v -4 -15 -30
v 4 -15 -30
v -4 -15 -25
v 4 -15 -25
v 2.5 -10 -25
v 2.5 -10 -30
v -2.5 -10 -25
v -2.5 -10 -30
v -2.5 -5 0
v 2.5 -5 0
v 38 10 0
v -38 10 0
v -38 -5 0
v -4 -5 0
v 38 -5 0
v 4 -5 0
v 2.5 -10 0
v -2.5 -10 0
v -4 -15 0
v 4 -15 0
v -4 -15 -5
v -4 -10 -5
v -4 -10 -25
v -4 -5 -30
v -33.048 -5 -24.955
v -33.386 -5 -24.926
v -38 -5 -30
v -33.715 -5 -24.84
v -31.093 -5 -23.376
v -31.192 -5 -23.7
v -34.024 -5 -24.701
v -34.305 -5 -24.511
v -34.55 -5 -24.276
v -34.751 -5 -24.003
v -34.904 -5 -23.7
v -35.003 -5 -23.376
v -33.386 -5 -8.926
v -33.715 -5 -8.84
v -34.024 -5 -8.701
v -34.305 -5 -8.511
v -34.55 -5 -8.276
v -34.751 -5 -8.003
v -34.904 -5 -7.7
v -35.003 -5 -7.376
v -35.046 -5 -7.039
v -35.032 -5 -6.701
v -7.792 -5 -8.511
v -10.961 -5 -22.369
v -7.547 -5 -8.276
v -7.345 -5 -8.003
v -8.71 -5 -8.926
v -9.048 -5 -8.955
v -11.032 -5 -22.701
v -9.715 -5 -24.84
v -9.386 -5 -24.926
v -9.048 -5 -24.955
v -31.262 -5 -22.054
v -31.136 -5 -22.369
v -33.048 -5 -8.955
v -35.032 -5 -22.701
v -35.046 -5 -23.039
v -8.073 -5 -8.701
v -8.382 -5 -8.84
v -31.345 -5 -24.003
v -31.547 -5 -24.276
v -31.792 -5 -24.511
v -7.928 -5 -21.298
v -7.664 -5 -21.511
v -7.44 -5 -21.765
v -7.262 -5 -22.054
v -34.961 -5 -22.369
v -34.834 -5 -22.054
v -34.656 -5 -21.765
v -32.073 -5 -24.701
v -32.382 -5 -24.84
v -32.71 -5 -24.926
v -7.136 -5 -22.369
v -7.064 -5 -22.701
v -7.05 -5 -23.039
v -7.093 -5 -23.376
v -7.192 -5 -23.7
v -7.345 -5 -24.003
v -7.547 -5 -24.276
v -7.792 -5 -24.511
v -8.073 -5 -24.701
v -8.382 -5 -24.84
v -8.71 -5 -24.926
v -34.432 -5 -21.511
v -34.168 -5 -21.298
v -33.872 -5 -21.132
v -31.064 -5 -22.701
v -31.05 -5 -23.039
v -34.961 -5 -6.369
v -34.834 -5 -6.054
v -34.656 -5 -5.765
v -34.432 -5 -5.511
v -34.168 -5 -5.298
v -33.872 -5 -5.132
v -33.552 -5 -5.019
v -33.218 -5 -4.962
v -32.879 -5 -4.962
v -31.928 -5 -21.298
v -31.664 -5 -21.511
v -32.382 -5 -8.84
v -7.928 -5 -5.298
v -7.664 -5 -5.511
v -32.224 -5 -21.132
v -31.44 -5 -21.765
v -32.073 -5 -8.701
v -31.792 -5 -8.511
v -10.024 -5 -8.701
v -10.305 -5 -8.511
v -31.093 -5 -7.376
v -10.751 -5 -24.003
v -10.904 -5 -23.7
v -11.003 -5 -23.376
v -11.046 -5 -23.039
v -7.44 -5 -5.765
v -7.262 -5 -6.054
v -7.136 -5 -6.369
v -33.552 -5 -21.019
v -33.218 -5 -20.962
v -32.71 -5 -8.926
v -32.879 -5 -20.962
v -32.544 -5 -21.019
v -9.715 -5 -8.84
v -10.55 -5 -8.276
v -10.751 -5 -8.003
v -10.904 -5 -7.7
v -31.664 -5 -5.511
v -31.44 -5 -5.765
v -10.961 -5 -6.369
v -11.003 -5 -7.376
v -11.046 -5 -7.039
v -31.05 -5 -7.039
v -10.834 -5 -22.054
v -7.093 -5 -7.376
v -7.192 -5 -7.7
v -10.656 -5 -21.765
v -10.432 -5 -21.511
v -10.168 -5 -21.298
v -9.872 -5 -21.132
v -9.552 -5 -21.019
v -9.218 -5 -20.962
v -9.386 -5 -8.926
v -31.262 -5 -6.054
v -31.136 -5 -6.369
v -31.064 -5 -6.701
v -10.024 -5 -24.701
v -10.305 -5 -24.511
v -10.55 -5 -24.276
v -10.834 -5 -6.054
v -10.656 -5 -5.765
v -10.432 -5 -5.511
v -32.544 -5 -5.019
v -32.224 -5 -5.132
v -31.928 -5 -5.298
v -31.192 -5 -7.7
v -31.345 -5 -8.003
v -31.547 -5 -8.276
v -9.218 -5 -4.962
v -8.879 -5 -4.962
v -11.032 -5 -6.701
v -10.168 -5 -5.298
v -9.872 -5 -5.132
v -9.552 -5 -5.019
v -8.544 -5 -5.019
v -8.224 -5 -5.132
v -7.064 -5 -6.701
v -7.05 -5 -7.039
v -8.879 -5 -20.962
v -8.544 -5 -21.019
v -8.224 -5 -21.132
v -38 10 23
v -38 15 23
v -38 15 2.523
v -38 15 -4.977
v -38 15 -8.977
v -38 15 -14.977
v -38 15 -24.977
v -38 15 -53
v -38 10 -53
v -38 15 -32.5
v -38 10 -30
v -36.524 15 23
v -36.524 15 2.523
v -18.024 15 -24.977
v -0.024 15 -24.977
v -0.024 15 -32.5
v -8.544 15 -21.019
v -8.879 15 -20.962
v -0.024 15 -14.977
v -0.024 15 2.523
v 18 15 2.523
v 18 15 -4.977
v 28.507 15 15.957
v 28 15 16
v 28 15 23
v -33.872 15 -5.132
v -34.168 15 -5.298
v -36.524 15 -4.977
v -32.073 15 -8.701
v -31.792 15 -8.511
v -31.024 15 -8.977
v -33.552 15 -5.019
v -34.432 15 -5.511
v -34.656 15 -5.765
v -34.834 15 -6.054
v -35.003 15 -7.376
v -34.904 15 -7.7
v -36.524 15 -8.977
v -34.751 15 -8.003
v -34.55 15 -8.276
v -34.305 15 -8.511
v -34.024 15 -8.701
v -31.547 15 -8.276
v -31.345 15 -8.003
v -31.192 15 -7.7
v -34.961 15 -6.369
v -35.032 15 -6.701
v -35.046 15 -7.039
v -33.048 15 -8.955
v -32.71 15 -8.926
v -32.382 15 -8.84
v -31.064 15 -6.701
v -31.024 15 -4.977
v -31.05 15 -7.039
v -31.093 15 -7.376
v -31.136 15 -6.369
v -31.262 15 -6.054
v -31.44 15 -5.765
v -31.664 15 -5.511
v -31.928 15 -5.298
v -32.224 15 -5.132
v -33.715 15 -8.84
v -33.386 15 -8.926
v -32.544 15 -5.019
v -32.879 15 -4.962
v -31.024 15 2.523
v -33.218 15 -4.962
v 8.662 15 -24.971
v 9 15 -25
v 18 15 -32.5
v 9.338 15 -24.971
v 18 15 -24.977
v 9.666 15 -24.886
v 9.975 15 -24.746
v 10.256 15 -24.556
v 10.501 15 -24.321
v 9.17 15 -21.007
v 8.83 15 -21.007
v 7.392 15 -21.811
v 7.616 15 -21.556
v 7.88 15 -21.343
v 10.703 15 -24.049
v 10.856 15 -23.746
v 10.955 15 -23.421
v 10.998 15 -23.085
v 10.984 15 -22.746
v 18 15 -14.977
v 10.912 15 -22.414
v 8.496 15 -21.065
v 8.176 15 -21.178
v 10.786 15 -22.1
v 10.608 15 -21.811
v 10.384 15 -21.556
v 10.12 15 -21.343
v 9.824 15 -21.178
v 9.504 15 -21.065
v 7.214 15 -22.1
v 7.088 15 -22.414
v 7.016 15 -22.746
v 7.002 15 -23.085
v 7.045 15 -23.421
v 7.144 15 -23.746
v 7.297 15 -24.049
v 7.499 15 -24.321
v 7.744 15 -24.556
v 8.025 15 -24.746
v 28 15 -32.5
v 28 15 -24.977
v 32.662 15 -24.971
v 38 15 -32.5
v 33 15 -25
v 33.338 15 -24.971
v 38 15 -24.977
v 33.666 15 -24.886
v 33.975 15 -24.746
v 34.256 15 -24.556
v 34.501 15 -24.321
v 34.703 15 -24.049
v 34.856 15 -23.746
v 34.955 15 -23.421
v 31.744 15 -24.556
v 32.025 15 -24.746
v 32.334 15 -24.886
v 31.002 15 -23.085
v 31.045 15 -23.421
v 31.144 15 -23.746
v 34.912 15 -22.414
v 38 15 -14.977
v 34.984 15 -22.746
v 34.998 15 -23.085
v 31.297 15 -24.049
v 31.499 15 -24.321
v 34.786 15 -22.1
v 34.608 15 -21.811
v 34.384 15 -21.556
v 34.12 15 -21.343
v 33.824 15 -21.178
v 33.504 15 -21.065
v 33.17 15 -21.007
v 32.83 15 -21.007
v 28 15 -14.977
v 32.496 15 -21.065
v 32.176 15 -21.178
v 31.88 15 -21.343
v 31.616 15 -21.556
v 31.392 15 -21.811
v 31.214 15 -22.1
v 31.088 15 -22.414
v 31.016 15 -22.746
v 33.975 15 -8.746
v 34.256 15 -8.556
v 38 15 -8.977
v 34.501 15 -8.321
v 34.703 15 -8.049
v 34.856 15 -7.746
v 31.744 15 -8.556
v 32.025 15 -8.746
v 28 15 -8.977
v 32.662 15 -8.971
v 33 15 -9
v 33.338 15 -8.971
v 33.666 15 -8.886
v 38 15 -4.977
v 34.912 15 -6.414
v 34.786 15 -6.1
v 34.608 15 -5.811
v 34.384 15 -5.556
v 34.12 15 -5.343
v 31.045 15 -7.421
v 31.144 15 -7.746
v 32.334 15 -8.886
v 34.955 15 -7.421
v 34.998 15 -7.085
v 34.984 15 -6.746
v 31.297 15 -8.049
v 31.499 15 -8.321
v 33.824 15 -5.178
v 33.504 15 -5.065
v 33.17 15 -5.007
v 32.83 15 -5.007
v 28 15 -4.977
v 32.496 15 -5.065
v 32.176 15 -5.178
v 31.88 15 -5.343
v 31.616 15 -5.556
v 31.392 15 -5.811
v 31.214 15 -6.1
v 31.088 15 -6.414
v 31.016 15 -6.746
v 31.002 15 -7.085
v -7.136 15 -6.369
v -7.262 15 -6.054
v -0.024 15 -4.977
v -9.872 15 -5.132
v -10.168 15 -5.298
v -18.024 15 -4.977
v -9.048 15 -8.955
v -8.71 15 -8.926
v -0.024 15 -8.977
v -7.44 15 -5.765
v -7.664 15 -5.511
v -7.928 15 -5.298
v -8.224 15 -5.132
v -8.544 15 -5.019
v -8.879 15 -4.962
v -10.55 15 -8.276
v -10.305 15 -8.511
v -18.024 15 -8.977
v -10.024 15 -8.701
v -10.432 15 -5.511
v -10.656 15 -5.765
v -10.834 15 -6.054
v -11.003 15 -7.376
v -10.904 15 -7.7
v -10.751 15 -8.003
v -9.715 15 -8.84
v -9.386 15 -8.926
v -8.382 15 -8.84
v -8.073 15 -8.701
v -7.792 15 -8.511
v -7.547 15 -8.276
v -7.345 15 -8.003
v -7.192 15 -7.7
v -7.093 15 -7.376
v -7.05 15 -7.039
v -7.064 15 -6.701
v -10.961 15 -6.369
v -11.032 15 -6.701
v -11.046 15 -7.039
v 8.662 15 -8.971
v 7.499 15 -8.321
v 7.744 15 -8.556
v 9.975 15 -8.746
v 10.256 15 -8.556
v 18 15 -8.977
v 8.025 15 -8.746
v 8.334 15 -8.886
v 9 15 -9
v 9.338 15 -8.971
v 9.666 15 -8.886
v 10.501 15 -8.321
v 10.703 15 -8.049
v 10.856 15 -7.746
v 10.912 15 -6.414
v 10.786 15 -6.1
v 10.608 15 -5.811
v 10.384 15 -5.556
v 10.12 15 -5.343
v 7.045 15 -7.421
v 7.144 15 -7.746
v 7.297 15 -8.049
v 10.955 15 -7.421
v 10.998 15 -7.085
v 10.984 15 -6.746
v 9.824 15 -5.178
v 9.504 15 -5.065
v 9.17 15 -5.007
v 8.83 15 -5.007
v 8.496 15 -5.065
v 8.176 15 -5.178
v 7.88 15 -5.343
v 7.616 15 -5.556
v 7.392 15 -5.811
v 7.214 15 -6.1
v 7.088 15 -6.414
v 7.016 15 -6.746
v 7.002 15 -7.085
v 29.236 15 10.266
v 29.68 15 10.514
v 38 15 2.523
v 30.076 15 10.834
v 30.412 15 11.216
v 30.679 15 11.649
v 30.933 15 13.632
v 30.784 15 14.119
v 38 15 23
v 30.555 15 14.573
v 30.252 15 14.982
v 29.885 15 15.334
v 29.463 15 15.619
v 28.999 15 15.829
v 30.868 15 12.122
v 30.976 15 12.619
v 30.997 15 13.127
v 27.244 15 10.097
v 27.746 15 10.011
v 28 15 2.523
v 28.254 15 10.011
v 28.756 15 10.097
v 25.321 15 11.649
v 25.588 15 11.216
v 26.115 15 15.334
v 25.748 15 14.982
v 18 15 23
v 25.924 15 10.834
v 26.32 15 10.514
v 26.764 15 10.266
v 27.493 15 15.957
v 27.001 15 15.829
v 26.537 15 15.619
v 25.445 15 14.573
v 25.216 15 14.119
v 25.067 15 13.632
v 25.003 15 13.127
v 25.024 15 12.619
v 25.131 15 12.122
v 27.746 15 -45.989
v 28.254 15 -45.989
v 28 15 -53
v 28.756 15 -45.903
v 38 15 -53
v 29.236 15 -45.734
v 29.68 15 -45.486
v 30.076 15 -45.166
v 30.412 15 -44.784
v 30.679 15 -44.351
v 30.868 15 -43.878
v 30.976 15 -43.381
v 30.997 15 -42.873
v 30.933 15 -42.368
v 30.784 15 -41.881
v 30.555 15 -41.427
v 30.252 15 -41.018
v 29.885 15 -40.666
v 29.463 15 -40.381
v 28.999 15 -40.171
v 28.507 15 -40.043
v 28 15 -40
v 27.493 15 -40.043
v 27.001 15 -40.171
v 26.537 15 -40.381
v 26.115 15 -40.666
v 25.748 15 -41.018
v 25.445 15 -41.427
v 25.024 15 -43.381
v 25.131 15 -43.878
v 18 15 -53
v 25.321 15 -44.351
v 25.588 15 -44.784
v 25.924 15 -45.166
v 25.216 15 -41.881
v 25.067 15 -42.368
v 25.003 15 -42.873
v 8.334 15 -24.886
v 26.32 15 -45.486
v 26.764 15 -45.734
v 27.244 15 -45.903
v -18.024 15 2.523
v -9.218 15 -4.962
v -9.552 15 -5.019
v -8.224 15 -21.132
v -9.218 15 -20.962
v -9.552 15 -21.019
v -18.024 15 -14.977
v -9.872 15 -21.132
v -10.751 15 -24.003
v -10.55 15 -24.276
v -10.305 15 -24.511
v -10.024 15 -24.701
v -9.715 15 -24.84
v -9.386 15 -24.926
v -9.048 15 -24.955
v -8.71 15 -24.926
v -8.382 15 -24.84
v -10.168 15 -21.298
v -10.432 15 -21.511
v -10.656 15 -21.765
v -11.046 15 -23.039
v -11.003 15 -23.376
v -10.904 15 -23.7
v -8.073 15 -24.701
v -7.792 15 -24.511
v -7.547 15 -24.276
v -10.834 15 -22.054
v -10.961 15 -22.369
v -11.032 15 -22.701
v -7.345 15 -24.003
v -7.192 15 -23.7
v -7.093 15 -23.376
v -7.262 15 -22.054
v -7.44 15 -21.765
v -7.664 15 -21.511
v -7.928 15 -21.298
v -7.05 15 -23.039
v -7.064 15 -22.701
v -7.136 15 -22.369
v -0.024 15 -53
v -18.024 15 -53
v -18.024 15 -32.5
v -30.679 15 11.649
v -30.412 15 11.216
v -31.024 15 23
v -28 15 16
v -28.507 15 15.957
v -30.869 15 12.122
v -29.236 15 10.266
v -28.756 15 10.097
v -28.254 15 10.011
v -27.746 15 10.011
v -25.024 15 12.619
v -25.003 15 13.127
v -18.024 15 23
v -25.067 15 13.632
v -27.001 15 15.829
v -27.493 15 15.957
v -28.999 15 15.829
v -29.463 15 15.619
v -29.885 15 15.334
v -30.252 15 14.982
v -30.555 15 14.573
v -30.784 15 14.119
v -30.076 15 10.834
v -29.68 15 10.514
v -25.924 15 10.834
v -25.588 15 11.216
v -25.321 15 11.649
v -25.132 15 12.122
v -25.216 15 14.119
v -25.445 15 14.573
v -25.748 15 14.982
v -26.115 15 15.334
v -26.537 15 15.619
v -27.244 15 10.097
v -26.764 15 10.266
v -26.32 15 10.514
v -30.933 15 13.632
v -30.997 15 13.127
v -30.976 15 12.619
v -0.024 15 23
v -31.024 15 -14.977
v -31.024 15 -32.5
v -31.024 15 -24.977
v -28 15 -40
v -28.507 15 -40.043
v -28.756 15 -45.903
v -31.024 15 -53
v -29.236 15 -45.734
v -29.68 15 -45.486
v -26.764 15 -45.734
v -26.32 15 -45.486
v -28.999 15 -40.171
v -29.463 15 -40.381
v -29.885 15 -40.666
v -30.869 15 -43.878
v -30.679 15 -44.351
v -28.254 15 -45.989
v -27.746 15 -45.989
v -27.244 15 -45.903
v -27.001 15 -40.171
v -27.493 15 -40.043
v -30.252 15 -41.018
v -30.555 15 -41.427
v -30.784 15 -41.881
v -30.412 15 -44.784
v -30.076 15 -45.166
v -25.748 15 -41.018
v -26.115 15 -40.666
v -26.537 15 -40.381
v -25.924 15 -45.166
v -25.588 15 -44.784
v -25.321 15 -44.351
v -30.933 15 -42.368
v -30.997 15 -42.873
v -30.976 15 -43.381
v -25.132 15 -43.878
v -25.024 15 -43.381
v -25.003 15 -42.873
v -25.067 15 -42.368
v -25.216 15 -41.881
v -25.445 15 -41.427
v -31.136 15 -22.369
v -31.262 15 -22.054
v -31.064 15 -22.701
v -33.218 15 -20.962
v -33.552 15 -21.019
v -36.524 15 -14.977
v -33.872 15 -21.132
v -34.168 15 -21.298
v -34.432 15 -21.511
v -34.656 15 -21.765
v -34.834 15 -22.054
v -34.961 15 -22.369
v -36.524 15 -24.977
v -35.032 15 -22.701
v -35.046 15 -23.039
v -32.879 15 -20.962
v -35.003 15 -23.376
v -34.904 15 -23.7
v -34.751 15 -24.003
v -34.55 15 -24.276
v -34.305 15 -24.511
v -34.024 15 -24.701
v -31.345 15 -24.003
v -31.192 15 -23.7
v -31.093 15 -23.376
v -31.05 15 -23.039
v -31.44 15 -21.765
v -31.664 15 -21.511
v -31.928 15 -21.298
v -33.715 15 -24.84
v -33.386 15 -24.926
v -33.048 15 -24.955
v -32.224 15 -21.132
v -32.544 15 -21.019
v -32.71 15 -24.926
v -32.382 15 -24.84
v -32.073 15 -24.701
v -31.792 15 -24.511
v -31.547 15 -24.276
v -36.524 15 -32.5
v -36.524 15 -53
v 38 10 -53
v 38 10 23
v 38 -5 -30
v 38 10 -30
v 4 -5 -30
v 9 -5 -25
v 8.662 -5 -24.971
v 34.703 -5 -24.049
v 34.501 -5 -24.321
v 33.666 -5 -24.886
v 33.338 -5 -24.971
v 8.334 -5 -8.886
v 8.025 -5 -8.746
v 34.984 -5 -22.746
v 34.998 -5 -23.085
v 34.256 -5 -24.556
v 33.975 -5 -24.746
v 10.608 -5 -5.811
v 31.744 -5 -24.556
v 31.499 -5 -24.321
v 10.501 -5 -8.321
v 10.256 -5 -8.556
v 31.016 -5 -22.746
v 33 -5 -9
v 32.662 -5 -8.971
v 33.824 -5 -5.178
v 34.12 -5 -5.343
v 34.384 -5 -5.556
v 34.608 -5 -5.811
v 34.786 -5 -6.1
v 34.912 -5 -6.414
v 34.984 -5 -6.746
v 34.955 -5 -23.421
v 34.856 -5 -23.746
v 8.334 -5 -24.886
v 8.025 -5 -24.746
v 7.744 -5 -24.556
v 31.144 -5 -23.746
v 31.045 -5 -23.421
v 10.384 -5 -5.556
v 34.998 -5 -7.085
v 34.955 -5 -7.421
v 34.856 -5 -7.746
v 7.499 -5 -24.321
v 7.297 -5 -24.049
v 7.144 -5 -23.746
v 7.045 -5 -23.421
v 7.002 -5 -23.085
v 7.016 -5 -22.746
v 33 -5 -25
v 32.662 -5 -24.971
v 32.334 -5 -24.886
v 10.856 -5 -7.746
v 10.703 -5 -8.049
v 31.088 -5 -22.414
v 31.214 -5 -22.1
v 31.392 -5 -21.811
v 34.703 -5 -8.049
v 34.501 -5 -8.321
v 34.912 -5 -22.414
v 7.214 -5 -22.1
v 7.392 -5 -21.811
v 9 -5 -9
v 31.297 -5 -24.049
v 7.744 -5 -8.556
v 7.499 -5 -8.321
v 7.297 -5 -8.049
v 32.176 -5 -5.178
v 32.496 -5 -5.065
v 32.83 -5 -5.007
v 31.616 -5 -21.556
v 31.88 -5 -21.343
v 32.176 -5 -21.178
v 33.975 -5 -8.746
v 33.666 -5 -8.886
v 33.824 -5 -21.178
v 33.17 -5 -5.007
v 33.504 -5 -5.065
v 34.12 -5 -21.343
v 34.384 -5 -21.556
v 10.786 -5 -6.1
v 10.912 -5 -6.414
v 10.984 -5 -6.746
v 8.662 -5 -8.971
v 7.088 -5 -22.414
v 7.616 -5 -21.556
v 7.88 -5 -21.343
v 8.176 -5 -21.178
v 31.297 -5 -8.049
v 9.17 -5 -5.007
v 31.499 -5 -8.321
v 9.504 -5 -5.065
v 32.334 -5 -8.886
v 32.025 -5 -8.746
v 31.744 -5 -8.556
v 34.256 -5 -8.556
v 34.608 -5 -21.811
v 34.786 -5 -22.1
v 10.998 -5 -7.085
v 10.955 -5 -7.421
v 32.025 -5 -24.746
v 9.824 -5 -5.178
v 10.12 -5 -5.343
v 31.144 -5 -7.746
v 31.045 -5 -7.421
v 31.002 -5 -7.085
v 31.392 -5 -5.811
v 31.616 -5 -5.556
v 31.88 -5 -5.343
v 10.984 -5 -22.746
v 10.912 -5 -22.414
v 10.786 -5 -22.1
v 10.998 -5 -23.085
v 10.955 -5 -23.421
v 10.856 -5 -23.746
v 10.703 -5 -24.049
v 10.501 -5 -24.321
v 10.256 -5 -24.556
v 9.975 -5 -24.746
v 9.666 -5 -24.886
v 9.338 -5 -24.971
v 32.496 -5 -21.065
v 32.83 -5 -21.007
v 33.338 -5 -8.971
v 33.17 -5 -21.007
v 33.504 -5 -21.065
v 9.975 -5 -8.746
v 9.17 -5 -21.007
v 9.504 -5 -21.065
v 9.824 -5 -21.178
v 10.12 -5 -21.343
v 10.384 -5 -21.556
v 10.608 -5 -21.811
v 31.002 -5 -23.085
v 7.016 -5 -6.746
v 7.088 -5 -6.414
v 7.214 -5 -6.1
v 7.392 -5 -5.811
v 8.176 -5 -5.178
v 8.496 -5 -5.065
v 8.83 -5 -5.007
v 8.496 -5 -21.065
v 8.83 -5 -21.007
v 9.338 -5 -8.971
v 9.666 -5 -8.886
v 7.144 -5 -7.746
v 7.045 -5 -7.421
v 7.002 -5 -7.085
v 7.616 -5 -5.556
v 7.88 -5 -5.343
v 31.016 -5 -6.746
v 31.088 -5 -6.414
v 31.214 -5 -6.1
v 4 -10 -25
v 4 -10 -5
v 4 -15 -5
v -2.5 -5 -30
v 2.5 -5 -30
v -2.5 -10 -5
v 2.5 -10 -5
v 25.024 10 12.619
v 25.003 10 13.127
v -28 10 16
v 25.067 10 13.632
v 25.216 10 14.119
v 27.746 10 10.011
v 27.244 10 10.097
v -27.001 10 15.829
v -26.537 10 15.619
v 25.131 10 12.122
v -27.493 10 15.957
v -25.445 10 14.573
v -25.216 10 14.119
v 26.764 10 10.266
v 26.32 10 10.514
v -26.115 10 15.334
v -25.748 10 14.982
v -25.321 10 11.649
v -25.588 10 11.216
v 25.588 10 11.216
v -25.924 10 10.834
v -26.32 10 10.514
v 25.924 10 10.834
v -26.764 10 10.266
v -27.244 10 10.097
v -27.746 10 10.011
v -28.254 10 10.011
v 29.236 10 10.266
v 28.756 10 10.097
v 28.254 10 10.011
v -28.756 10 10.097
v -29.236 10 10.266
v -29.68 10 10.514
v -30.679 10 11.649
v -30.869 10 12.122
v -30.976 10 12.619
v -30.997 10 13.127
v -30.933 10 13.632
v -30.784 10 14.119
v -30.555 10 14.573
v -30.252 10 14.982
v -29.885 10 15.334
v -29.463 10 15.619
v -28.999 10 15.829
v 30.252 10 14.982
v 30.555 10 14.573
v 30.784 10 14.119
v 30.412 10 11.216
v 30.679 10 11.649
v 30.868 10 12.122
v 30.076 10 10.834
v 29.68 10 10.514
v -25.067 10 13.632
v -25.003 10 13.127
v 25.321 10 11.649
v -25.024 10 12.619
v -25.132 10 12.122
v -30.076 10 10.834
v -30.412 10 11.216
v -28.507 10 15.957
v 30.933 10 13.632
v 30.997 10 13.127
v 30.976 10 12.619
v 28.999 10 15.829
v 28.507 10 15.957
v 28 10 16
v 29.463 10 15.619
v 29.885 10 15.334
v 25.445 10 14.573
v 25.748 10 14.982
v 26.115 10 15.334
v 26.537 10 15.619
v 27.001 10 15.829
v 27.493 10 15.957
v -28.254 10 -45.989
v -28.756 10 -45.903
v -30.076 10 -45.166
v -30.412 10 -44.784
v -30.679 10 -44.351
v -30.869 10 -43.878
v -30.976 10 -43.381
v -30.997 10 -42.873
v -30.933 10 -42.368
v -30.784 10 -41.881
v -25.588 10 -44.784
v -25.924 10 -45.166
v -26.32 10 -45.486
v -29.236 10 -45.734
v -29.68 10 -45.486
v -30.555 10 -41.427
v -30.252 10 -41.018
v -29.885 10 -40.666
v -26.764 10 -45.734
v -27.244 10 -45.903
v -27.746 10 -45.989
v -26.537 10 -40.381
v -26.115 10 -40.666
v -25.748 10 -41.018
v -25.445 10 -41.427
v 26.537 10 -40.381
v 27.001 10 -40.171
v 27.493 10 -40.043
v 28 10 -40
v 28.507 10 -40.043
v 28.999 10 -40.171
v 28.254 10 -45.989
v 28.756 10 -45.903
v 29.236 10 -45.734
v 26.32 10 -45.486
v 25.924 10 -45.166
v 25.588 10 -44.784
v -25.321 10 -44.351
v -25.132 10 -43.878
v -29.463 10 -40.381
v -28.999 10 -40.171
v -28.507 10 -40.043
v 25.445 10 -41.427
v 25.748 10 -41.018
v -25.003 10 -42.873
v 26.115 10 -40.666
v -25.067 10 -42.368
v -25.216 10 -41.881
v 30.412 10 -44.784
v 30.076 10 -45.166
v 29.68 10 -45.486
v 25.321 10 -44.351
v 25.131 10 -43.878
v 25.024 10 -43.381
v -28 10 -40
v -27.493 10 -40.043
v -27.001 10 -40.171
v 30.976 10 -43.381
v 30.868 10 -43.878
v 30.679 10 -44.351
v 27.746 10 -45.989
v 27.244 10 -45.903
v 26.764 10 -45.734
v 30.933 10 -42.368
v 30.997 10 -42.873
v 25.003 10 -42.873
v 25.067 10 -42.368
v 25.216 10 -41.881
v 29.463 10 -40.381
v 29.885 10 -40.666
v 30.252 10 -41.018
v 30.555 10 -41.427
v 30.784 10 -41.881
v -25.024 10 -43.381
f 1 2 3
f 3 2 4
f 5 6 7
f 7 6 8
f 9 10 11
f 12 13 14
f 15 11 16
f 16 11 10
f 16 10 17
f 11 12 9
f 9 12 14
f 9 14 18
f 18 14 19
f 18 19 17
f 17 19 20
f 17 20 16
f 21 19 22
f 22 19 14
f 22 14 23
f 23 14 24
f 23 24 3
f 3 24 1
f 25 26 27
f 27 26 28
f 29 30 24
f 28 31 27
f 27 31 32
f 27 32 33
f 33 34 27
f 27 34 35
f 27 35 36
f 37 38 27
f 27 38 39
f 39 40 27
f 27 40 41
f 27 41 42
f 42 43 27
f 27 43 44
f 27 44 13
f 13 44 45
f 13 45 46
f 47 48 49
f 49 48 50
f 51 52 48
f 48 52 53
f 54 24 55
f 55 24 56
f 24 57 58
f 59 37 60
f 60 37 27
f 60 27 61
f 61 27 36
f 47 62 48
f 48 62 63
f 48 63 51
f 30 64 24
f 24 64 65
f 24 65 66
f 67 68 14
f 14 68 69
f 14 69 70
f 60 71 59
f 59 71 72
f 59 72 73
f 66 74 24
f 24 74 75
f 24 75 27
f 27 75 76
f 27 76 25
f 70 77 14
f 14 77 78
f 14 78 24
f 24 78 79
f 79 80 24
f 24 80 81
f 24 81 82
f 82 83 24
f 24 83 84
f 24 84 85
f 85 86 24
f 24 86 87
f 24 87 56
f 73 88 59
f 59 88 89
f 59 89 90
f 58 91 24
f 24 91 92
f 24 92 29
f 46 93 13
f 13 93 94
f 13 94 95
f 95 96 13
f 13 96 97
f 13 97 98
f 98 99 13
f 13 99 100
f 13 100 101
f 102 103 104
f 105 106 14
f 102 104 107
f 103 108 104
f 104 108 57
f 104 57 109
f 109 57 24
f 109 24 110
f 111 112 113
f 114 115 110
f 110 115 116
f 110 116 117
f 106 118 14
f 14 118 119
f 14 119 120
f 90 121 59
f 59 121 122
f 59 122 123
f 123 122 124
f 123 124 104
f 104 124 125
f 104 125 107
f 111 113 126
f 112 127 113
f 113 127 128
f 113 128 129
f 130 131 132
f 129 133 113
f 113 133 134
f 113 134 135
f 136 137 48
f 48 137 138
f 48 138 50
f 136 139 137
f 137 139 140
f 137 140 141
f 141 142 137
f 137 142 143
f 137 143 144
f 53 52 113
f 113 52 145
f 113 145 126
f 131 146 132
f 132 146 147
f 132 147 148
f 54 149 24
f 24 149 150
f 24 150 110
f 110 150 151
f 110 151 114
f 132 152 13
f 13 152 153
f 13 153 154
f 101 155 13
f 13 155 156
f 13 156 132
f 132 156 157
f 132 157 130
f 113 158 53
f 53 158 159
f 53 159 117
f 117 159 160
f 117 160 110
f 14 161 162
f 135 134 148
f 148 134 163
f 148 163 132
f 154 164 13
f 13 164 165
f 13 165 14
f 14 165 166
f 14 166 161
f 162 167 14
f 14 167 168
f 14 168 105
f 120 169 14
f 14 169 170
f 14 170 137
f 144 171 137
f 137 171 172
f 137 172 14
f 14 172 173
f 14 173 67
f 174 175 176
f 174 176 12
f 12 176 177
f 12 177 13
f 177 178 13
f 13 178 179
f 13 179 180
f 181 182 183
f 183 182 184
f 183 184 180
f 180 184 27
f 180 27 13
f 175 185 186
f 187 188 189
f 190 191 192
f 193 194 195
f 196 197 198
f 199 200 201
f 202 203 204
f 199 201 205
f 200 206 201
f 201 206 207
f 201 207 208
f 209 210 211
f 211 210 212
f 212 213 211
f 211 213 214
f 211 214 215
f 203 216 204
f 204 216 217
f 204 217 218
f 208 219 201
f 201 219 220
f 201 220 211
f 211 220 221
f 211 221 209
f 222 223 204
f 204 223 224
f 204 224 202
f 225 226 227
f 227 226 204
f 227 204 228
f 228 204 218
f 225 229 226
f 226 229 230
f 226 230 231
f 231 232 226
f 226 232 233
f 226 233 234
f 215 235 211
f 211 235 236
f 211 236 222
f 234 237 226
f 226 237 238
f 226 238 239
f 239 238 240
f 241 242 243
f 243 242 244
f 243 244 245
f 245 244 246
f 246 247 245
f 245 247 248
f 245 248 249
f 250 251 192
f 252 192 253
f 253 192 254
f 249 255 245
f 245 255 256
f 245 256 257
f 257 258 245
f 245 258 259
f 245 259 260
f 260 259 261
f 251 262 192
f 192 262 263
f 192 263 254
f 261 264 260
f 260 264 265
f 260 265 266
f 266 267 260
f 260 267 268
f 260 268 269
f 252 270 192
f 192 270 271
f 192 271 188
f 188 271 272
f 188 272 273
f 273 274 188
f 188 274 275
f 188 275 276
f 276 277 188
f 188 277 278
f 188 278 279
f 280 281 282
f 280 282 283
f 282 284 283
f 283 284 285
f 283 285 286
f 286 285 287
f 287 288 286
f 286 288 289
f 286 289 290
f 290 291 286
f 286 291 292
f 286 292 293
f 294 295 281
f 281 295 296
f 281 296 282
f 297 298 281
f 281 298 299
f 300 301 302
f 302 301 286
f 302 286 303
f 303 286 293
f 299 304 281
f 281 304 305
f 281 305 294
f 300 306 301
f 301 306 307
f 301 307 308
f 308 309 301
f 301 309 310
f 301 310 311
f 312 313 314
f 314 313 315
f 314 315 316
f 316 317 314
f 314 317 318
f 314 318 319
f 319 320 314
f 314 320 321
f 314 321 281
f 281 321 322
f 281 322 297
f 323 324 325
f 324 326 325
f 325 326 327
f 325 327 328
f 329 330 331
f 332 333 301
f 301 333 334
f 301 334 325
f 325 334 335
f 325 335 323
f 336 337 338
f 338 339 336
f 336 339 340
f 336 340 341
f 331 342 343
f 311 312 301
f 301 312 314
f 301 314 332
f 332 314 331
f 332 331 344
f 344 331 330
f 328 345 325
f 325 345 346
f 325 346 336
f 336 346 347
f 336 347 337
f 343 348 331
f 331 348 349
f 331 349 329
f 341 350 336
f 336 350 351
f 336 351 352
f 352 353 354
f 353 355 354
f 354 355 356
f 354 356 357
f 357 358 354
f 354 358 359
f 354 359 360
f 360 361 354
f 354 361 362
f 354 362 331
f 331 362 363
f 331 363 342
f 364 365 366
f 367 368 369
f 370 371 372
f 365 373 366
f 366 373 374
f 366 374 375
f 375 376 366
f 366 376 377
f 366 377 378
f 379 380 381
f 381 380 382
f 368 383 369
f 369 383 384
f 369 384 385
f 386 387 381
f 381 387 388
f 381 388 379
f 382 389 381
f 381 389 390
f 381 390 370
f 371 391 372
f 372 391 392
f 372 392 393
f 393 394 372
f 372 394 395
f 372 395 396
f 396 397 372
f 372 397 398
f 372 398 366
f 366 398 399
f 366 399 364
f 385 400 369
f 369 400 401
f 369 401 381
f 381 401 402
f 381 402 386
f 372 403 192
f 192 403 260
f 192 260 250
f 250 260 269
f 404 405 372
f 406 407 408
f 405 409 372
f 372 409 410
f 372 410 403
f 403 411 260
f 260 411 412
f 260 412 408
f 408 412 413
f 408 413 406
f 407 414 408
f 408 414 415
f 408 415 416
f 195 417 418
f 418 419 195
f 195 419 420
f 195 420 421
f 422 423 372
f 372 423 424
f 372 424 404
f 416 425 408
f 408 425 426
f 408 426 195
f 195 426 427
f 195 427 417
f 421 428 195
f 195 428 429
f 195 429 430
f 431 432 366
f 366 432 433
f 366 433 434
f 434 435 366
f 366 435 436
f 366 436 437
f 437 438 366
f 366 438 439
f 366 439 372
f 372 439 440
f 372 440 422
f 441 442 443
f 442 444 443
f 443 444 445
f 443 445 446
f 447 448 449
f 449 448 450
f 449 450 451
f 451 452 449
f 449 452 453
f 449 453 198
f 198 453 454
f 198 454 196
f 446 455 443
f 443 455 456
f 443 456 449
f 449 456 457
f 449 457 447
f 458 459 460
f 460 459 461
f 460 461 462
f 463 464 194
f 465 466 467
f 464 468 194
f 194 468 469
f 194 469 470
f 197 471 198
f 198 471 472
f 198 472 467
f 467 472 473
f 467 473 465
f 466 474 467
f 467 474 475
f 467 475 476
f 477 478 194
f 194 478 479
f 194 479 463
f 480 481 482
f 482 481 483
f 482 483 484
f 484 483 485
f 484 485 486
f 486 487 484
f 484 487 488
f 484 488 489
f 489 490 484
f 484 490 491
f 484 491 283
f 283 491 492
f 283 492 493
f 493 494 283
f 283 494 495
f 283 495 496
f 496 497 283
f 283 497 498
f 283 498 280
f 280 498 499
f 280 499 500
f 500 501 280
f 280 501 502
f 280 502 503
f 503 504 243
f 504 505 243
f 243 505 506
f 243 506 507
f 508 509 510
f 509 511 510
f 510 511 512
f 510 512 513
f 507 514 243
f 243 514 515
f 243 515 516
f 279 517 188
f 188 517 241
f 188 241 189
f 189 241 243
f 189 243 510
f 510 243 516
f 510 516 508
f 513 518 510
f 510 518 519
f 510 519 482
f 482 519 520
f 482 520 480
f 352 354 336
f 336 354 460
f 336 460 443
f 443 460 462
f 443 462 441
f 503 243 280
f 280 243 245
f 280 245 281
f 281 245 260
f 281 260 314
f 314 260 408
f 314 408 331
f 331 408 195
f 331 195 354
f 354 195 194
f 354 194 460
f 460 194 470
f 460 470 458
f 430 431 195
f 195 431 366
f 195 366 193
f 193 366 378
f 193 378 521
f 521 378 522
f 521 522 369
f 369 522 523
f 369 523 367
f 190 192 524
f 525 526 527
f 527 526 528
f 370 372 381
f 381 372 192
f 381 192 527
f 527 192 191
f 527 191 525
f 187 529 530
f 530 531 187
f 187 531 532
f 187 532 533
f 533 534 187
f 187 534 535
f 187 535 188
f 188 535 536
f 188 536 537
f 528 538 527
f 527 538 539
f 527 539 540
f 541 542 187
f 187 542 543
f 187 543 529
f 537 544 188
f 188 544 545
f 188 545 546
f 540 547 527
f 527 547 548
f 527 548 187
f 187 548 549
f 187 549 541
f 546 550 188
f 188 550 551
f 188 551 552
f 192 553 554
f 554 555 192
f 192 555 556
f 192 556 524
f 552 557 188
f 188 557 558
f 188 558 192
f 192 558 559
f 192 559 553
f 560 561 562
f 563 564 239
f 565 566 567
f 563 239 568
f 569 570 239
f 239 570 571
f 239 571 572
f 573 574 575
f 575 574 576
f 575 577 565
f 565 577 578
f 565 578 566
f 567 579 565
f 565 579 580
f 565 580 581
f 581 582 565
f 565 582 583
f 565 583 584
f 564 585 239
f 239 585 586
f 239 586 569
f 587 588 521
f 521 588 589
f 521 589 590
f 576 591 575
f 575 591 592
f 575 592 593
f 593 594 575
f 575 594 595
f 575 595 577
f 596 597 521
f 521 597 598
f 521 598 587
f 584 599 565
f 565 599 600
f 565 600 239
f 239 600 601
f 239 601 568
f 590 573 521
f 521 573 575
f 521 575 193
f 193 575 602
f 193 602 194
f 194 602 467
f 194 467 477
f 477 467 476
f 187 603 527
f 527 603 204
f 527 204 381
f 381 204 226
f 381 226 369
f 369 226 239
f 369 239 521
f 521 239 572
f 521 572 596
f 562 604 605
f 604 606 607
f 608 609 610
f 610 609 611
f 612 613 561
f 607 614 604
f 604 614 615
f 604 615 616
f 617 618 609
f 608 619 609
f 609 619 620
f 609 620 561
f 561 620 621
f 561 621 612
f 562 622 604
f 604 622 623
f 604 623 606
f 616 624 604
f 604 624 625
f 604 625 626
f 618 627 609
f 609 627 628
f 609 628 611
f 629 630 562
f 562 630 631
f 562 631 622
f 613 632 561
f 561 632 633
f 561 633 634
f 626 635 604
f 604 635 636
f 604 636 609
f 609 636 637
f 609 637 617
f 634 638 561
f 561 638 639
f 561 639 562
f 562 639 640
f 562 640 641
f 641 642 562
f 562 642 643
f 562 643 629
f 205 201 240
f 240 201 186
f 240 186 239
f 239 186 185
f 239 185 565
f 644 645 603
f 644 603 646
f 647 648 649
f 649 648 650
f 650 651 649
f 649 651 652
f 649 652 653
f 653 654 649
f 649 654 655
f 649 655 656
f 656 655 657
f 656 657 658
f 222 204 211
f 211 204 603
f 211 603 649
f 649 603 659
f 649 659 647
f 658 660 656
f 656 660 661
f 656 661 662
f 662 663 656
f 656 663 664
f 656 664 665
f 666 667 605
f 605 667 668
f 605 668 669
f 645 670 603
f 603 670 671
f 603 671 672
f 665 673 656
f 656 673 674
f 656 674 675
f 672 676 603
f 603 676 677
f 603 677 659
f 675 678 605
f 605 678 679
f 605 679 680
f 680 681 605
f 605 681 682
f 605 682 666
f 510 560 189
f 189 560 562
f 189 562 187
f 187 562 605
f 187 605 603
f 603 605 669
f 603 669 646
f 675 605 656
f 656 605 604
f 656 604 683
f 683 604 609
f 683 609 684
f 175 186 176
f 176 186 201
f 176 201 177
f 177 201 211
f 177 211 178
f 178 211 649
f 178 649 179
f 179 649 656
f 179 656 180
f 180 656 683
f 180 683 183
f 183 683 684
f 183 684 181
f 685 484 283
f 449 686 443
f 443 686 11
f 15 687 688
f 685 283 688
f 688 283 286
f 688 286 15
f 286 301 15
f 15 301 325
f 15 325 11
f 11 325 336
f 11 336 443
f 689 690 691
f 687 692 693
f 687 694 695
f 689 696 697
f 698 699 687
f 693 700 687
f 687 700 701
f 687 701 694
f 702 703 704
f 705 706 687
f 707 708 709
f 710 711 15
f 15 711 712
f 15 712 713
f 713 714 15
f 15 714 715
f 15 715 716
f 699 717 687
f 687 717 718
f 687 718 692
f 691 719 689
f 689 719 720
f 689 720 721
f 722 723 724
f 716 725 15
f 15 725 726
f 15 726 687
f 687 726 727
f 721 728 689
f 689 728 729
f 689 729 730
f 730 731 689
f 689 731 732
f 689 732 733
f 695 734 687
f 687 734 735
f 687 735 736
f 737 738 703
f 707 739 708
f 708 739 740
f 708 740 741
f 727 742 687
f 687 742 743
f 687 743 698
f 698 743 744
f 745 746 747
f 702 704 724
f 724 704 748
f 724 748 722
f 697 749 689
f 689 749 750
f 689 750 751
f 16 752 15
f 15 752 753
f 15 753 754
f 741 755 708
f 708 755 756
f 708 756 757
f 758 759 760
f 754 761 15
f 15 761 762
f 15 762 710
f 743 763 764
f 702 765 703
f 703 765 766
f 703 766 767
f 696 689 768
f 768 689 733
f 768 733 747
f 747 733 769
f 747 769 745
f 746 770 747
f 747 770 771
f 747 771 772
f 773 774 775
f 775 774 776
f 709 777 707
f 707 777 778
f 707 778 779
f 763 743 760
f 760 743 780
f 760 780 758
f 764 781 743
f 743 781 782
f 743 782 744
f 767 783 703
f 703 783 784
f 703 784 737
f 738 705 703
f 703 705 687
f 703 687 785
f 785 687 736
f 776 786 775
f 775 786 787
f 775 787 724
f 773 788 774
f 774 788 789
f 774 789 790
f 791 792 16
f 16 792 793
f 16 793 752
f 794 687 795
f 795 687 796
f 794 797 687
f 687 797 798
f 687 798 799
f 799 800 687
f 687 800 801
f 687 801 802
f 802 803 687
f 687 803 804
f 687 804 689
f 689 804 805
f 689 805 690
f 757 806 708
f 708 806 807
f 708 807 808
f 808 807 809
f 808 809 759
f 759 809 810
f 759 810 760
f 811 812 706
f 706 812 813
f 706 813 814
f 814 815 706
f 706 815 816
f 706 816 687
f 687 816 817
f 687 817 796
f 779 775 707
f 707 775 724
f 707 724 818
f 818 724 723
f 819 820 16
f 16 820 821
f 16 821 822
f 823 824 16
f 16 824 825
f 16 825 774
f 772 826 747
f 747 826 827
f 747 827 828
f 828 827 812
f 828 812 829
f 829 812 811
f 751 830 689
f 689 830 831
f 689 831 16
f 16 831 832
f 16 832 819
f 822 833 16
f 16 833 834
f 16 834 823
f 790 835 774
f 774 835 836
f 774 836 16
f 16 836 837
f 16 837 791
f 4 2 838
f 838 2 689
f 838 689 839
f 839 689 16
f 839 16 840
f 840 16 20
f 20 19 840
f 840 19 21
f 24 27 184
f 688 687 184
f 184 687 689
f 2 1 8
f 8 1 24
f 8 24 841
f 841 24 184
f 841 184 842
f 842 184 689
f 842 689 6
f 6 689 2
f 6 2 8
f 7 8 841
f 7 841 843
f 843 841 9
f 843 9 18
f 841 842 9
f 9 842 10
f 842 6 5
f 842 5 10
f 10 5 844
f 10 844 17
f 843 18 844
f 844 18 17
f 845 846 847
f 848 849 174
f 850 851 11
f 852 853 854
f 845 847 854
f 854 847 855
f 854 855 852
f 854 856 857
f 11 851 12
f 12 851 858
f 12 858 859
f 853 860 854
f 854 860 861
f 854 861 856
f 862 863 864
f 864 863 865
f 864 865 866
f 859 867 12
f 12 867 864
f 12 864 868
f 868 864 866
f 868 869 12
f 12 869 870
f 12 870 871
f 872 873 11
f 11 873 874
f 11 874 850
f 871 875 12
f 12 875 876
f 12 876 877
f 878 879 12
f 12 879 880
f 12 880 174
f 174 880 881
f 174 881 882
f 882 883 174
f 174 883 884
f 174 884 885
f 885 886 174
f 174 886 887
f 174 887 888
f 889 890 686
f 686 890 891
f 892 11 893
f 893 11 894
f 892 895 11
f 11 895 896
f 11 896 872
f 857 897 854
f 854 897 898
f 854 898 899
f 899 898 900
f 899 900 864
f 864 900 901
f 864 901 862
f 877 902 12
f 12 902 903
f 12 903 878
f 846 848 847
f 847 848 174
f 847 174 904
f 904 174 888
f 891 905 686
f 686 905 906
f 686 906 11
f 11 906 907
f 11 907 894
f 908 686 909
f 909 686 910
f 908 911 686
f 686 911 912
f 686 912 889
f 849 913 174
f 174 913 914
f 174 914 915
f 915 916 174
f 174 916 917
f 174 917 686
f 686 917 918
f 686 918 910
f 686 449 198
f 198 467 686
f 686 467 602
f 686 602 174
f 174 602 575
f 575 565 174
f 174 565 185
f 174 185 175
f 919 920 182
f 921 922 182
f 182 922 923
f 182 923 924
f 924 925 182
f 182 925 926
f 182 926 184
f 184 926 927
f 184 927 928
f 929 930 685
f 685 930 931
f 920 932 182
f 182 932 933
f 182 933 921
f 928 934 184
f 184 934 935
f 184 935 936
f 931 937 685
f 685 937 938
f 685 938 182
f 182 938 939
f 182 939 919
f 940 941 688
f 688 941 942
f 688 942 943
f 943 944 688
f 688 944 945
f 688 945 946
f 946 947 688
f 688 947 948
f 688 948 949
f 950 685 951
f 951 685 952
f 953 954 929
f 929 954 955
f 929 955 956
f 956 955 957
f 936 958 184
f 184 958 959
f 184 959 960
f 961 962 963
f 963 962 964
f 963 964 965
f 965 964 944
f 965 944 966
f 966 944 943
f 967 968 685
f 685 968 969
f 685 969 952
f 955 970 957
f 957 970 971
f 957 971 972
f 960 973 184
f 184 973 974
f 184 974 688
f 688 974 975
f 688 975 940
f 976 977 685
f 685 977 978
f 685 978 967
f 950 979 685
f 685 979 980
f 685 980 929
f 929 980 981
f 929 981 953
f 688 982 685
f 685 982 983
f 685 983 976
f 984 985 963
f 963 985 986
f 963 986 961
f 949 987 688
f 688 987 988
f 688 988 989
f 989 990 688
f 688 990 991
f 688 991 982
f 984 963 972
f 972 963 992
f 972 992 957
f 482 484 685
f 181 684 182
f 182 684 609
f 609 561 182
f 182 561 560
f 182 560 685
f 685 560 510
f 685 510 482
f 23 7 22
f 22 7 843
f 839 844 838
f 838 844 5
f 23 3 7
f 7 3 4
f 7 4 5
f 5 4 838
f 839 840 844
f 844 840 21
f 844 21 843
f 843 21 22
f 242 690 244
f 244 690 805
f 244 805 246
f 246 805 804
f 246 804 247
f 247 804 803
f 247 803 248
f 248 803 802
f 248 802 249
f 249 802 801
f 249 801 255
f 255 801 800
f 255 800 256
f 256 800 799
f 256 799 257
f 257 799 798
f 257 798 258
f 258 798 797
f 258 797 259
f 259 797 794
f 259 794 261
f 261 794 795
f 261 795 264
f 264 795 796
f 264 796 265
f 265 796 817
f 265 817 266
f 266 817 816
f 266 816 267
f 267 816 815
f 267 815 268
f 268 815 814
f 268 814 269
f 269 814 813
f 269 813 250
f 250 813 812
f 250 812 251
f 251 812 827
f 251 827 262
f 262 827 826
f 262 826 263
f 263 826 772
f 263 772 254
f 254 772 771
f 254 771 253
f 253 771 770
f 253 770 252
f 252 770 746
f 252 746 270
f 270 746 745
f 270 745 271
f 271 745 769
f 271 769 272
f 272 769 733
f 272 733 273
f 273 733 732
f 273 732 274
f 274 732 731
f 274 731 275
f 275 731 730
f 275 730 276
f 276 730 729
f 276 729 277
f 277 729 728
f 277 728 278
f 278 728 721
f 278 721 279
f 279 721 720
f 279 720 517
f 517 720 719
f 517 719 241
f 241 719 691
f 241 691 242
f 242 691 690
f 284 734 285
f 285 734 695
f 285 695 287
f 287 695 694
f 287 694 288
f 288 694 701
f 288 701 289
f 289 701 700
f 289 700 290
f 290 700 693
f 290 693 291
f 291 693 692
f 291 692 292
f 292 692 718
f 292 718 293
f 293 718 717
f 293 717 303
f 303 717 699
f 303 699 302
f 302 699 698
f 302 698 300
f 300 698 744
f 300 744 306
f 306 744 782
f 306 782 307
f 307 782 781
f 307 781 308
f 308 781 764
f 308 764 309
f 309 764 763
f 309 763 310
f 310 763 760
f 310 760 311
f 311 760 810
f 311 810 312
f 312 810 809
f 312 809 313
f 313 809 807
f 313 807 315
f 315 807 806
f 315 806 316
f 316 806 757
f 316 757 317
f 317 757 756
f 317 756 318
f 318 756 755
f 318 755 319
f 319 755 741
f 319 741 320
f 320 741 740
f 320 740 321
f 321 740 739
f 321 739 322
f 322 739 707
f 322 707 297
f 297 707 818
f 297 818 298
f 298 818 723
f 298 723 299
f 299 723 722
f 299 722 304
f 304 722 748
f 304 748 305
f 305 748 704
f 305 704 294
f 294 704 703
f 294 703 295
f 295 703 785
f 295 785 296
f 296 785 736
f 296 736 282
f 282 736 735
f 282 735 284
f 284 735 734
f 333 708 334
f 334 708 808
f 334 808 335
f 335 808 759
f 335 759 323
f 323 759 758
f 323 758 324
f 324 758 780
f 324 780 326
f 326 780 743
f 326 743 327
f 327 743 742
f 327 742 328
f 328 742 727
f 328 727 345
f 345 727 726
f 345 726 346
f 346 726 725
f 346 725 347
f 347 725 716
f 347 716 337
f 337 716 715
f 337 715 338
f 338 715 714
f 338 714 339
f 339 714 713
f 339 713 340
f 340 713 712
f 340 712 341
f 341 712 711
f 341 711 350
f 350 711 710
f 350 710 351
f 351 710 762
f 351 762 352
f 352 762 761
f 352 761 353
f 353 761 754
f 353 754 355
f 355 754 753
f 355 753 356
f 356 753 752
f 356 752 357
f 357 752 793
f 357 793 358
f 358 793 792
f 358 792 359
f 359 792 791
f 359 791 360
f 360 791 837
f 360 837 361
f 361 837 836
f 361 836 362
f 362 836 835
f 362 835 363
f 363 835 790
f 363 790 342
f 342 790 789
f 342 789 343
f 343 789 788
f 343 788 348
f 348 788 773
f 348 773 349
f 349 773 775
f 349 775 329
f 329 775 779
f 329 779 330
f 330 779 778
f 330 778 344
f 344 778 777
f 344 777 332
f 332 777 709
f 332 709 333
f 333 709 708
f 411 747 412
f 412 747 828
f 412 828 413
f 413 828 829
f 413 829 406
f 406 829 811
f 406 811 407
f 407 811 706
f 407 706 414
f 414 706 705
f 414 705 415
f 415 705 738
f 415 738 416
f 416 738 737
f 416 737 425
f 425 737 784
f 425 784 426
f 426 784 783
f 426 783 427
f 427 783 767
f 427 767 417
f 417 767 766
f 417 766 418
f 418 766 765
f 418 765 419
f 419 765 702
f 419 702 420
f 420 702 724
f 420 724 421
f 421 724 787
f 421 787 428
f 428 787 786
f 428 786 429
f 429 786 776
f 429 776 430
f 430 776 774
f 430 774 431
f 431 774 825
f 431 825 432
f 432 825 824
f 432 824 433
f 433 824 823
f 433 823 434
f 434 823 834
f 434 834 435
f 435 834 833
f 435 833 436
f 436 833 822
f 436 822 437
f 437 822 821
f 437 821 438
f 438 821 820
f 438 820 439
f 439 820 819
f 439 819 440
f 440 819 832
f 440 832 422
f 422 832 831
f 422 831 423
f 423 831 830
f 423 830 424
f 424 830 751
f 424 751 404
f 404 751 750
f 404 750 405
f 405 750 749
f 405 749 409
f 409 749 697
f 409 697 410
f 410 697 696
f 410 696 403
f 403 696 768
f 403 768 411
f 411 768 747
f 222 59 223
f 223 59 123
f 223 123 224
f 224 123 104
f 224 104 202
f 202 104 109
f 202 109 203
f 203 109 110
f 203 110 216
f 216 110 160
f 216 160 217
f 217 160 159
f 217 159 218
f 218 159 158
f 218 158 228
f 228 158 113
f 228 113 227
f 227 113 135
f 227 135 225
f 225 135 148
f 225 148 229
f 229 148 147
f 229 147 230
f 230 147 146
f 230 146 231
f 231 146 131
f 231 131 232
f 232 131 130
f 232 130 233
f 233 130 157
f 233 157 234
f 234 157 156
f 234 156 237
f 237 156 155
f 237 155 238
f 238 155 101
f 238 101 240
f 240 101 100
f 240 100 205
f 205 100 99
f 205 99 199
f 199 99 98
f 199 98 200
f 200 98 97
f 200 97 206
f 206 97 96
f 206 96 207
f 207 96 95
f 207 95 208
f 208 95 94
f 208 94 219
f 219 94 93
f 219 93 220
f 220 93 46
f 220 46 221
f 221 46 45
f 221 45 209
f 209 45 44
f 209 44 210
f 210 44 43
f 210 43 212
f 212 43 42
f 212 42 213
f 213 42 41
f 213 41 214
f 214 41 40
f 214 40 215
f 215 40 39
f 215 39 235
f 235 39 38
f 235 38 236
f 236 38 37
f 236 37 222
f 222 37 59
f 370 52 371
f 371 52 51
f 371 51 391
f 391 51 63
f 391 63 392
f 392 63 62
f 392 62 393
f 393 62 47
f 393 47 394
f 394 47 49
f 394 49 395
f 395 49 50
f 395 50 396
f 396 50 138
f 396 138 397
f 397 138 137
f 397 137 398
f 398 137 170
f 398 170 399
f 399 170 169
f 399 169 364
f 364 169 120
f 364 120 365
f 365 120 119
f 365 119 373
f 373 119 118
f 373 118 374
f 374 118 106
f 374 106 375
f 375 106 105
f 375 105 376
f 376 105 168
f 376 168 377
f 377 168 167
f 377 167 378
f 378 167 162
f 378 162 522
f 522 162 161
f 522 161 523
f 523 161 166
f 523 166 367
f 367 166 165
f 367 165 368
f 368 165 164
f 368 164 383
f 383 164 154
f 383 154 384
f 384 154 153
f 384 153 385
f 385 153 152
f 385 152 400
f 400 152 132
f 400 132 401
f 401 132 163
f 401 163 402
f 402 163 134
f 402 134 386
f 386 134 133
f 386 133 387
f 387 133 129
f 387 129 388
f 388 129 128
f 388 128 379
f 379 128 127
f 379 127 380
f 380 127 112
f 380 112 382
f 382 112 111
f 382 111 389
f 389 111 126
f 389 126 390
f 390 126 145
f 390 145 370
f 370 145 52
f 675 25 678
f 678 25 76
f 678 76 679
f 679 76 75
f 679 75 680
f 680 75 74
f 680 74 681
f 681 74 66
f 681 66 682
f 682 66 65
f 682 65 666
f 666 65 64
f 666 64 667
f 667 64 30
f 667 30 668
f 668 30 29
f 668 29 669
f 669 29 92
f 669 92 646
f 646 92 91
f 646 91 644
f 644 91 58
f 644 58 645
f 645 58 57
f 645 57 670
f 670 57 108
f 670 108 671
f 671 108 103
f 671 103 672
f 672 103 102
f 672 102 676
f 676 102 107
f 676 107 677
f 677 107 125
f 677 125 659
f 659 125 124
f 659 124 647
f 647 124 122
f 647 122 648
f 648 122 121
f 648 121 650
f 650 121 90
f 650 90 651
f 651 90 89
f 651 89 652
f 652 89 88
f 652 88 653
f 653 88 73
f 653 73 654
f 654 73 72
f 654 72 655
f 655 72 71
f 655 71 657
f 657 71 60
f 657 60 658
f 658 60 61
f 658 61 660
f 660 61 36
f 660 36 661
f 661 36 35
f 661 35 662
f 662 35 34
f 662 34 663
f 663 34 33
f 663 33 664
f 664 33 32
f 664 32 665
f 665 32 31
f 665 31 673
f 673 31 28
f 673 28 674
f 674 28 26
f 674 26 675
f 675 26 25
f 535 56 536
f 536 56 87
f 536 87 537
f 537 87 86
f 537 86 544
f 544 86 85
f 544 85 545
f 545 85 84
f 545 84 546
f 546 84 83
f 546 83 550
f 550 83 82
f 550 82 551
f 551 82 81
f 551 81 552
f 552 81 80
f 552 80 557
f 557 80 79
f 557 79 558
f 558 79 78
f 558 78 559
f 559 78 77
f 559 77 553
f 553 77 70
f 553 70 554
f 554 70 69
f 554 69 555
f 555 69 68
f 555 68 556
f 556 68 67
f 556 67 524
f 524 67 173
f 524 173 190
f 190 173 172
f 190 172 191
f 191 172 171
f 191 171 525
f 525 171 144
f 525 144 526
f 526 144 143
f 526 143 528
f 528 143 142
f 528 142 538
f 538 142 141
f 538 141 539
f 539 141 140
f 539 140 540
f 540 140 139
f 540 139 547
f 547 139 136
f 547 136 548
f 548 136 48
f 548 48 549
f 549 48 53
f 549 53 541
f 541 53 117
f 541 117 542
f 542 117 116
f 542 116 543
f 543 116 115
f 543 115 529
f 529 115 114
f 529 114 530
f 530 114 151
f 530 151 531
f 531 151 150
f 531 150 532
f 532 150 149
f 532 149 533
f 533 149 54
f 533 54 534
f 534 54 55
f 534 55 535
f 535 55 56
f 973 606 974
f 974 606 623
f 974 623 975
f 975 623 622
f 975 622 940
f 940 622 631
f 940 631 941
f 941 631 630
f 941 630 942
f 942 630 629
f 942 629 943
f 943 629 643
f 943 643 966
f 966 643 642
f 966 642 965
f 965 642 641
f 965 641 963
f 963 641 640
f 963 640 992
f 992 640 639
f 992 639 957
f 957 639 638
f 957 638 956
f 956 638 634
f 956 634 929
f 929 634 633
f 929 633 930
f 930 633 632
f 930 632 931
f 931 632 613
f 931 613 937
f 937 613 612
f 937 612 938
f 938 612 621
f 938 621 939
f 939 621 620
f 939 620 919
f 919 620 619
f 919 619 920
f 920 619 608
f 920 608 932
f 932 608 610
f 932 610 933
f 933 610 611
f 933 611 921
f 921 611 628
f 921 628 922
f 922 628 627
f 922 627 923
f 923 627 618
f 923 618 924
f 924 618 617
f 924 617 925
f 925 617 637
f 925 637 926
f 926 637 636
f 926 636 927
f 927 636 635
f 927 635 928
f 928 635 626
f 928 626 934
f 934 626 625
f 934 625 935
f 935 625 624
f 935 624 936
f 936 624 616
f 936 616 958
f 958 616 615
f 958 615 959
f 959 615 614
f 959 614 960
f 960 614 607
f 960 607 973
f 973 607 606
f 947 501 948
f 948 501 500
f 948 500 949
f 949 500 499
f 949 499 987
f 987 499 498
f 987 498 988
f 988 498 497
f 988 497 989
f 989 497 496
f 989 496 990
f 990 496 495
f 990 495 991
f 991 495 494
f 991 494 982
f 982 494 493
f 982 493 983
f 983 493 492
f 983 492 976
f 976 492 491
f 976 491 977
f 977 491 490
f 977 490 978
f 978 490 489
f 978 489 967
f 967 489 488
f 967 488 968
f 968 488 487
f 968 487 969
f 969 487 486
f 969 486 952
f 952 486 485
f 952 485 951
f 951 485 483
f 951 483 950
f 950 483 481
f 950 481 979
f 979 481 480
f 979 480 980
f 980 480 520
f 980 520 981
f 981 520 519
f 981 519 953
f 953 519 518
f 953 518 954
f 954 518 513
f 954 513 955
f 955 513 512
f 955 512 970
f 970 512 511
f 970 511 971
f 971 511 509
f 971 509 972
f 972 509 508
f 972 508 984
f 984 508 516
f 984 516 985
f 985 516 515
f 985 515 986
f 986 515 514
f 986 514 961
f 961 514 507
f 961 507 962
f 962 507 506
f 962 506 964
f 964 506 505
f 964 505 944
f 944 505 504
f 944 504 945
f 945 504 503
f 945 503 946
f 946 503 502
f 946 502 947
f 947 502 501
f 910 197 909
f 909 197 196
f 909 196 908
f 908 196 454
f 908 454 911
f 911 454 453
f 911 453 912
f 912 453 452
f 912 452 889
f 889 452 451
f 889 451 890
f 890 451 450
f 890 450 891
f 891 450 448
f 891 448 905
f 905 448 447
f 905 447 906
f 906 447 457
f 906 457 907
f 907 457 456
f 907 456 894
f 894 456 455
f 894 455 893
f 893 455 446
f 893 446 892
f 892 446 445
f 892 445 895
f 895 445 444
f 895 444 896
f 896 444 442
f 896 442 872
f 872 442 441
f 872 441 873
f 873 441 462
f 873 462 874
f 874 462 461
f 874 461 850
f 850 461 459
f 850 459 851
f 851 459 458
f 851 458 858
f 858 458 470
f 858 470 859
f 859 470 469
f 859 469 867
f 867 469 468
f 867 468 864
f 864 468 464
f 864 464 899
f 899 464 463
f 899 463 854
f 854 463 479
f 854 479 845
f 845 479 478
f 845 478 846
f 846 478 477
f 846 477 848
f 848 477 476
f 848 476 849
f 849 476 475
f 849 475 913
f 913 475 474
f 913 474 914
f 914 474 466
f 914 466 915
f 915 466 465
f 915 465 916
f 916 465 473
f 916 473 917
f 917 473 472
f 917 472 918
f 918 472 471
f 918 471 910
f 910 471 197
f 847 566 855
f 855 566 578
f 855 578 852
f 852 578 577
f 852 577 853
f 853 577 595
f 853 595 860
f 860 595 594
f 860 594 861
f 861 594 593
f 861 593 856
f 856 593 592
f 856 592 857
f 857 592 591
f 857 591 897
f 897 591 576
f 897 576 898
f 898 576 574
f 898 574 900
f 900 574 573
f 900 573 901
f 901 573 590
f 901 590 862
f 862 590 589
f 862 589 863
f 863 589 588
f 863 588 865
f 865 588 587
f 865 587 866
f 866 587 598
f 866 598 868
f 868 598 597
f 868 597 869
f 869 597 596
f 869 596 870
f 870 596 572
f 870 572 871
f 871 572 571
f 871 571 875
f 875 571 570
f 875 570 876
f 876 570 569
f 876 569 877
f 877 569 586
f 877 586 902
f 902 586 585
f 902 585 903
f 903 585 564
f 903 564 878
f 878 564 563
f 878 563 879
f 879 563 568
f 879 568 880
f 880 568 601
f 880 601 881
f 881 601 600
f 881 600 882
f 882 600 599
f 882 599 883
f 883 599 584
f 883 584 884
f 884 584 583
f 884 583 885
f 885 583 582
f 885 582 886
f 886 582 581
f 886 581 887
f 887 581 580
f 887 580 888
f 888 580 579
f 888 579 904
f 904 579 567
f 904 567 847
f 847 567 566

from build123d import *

# Parameters (mm, degrees)
BOSS_EXTRUDE1_DEPTH = 30
SKETCH2_W           = 76
SKETCH2_H           = 5
BOSS_EXTRUDE2_DEPTH = 23
SKETCH3_W           = 76
SKETCH3_H           = 5
BOSS_EXTRUDE3_DEPTH = 23
SKETCH4_W           = 8
SKETCH4_H           = 20
CUT_EXTRUDE1_DEPTH  = 5
SKETCH5_R           = 2
CUT_EXTRUDE2_DEPTH  = 20
SKETCH6_R           = 3
CUT_EXTRUDE3_DEPTH  = 5


with BuildPart() as part:
    # Sketch1 → Boss-Extrude1 (new body)
    with BuildSketch(Plane.XY):
        Polygon((0, 15), (38, 15), (38, 10), (38, -5), (4, -5), (4, -15), (0, -15), (-4, -15), (-4, -5), (-38, -5), (-38, 10), (-38, 15), align=None)
        Polygon((-2.5, -5), (2.5, -5), (2.5, -7.5), (2.5, -10), (0, -10), (-2.5, -10), (-2.5, -7.5), align=None, mode=Mode.SUBTRACT)
    extrude(amount=-BOSS_EXTRUDE1_DEPTH)

    # Sketch2 → Boss-Extrude2 (add)
    with BuildSketch(Plane.XY):
        with Locations((0, 12.5)):
            Rectangle(SKETCH2_W, SKETCH2_H)
    extrude(amount=BOSS_EXTRUDE2_DEPTH)

    # Sketch3 → Boss-Extrude3 (add)
    with BuildSketch(Plane(origin=(0, 0, -30), x_dir=(-1, 0, 0), z_dir=(0, 0, -1))):
        with Locations((0, 12.5)):
            Rectangle(SKETCH3_W, SKETCH3_H)
    extrude(amount=BOSS_EXTRUDE3_DEPTH)

    # Sketch4 → Cut-Extrude1 (cut)
    with BuildSketch(Plane(origin=(0, -15, 0), x_dir=(-1, 0, 0), z_dir=(0, -1, 0))):
        with Locations((0, 15)):
            Rectangle(SKETCH4_W, SKETCH4_H)
    extrude(amount=-CUT_EXTRUDE1_DEPTH, mode=Mode.SUBTRACT)

    # Sketch5 → Cut-Extrude2 (cut)
    with BuildSketch(Plane(origin=(0, -5, 0), x_dir=(-1, 0, 0), z_dir=(0, -1, 0))):
        with Locations(Location((33.048249635, 6.95460219, 0), (0, 0, 90))):
            Circle(SKETCH5_R)
        with Locations(Location((9.048249635, 6.95460219, 0), (0, 0, 90))):
            Circle(SKETCH5_R)
        with Locations(Location((33.048249635, 22.95460219, 0), (0, 0, 90))):
            Circle(SKETCH5_R)
        with Locations(Location((9.048249635, 22.95460219, 0), (0, 0, 90))):
            Circle(SKETCH5_R)
        with Locations(Location((-9, 7, 0), (0, 0, 90))):
            Circle(SKETCH5_R)
        with Locations(Location((-33, 7, 0), (0, 0, 90))):
            Circle(SKETCH5_R)
        with Locations(Location((-33, 23, 0), (0, 0, 90))):
            Circle(SKETCH5_R)
        with Locations(Location((-9, 23, 0), (0, 0, 90))):
            Circle(SKETCH5_R)
    extrude(amount=-CUT_EXTRUDE2_DEPTH, mode=Mode.SUBTRACT)

    # Sketch6 → Cut-Extrude3 (cut)
    with BuildSketch(Plane(origin=(0, 15, 0), x_dir=(1, 0, 0), z_dir=(0, 1, 0))):
        with Locations(Location((28, -13, 0), (0, 0, 270))):
            Circle(SKETCH6_R)
        with Locations(Location((-28, -13, 0), (0, 0, 270))):
            Circle(SKETCH6_R)
        with Locations(Location((-28, 43, 0), (0, 0, 270))):
            Circle(SKETCH6_R)
        with Locations(Location((28, 43, 0), (0, 0, 270))):
            Circle(SKETCH6_R)
    extrude(amount=-CUT_EXTRUDE3_DEPTH, mode=Mode.SUBTRACT)


solid = part.part
